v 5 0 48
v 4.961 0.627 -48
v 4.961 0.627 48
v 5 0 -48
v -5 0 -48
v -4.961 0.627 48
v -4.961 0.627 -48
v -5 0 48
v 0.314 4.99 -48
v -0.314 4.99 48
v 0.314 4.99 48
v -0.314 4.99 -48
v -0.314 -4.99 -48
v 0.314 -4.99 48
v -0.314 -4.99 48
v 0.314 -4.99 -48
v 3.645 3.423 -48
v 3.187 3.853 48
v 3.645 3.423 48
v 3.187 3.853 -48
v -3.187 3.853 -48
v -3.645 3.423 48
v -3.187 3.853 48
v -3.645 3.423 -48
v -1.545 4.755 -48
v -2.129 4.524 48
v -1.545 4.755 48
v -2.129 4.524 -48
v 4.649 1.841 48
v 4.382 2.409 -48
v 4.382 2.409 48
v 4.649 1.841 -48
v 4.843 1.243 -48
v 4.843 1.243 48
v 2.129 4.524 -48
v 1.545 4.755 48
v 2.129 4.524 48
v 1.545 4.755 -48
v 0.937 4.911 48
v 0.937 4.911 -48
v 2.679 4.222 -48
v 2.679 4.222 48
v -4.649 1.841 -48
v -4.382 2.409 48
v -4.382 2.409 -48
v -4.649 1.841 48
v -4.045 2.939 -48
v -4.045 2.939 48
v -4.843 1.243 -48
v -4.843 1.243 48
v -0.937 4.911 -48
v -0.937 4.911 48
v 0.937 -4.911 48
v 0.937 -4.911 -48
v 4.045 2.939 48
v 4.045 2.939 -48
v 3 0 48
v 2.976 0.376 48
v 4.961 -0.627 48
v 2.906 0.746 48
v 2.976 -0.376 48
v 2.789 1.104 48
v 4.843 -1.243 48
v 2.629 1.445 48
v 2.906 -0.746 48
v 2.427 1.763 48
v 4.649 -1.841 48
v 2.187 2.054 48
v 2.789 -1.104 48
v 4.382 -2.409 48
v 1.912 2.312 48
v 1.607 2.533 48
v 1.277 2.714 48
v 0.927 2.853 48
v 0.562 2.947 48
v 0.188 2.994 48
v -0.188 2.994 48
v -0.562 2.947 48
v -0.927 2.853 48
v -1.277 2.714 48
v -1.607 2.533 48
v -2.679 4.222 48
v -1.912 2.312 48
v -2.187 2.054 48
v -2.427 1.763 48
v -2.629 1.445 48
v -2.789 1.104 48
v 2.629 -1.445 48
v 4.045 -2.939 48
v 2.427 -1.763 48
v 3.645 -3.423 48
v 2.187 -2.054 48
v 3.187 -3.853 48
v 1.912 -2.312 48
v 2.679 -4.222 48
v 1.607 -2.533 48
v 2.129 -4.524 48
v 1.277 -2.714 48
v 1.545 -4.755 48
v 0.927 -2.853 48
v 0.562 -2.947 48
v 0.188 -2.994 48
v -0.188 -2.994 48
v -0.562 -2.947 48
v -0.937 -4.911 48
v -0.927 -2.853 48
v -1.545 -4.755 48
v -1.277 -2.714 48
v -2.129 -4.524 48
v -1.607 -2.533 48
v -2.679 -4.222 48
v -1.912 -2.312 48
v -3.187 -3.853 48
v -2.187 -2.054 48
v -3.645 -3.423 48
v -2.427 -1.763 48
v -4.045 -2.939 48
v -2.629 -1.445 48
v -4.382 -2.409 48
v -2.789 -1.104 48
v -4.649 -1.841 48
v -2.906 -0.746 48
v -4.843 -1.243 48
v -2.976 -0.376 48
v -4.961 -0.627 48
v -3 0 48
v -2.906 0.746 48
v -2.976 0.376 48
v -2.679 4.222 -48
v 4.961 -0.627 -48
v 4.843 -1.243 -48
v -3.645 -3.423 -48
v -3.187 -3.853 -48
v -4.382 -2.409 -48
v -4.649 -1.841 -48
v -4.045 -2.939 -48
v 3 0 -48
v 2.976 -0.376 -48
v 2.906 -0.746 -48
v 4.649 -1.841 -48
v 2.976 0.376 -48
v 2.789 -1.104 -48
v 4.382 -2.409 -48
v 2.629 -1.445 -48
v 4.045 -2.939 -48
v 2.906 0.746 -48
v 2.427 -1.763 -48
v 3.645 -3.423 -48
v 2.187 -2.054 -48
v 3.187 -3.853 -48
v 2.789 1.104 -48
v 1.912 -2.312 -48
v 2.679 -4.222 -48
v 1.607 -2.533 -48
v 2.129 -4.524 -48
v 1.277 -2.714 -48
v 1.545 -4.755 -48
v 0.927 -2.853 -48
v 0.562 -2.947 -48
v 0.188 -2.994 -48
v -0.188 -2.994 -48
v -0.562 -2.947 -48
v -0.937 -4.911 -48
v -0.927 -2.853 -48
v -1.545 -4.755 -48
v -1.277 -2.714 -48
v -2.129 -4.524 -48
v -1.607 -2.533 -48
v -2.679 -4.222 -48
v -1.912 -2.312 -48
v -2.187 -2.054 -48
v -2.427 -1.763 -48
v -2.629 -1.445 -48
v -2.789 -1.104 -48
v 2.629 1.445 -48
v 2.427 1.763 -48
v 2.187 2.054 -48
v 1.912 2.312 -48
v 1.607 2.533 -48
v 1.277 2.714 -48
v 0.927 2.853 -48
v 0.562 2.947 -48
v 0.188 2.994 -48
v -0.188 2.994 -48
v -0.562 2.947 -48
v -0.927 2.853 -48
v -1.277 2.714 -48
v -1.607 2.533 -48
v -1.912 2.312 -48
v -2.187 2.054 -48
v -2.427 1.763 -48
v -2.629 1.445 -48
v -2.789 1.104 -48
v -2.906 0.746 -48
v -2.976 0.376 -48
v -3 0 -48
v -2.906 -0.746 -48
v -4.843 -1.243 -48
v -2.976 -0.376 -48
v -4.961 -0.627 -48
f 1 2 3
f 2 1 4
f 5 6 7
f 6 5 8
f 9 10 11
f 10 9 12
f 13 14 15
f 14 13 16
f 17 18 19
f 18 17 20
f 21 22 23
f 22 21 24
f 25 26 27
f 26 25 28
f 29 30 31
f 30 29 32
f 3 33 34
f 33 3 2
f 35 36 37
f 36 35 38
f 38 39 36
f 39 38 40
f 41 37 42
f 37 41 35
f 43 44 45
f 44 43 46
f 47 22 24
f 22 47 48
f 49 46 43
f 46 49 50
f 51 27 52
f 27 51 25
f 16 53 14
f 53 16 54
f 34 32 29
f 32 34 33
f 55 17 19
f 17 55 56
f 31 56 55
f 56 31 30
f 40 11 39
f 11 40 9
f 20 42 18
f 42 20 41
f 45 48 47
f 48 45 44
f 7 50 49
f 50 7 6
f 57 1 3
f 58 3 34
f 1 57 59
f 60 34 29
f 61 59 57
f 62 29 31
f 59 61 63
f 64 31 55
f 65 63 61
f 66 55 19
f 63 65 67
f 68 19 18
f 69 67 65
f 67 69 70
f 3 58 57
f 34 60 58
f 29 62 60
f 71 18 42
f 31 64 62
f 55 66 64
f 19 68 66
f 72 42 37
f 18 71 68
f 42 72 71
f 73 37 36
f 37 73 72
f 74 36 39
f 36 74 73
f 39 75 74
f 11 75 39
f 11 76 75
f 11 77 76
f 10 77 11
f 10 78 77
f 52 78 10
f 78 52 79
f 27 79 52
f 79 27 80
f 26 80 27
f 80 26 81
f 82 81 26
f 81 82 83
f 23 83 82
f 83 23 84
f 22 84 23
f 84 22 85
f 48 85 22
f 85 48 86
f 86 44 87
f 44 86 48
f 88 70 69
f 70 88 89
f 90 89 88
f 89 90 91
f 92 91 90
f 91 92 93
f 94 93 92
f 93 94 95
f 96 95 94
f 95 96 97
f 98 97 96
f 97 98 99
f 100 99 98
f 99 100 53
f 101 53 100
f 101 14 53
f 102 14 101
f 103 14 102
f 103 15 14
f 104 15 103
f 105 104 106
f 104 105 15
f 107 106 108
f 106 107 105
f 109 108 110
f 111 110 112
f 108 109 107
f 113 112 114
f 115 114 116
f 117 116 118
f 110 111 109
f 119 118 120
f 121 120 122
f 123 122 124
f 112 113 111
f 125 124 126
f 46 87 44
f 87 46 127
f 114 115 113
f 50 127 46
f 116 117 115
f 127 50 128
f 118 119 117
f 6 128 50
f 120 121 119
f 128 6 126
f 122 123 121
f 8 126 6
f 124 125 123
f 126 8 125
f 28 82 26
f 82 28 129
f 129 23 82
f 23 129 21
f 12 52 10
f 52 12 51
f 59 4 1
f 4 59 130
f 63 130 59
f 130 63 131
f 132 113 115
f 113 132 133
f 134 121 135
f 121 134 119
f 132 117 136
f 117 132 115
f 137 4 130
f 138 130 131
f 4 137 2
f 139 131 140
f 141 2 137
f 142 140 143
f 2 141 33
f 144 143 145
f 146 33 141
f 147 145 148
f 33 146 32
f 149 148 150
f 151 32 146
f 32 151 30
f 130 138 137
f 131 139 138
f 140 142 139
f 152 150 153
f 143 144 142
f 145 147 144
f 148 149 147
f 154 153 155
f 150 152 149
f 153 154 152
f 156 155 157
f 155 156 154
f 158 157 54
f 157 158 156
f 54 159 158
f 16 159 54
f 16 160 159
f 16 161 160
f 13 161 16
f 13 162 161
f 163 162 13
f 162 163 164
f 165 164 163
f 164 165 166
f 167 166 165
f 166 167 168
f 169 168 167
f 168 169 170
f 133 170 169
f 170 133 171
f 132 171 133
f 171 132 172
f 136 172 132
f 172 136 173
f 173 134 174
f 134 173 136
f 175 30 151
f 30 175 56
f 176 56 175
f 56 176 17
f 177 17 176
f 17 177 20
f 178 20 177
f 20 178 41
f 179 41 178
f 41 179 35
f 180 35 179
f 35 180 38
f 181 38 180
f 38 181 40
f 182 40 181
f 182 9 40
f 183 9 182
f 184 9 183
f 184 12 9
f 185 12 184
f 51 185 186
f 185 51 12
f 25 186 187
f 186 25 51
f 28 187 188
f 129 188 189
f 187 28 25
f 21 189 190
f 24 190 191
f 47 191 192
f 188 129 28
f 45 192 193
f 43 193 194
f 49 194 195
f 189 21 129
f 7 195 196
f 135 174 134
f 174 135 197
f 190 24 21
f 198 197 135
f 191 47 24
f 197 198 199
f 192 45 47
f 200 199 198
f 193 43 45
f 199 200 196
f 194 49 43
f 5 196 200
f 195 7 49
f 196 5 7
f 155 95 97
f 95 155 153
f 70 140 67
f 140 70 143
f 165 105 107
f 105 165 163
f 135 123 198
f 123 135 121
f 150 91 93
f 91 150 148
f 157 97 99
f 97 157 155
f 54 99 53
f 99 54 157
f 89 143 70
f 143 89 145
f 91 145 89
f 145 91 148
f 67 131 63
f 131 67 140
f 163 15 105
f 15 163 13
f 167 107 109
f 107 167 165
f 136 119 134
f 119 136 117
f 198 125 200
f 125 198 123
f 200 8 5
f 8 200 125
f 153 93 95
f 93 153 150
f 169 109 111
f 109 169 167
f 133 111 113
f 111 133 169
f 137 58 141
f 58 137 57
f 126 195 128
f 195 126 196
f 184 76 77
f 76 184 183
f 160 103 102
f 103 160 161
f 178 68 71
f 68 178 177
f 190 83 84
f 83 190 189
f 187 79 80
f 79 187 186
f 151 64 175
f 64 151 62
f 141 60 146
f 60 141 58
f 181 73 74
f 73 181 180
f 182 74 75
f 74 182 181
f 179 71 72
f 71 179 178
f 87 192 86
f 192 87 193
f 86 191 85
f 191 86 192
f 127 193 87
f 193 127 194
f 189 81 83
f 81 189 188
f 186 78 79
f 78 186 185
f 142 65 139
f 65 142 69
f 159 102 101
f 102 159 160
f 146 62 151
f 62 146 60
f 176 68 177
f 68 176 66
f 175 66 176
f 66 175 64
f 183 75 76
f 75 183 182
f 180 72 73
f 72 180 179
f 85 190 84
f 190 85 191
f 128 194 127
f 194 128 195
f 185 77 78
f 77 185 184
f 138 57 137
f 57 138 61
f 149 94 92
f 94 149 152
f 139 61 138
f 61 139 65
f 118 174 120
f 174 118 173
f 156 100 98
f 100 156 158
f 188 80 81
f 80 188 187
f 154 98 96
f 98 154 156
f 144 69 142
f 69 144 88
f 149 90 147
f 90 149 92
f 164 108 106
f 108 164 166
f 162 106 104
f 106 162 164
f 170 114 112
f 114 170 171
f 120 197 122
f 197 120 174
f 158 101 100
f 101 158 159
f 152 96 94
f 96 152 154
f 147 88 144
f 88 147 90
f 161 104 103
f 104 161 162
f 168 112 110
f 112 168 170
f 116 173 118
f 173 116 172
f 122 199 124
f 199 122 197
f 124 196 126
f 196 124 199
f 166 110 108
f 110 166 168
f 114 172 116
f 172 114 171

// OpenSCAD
$fn = 50;


difference() {
	union() {
		translate(v = [0, 0, -48.0000000000]) {
			cylinder(h = 96, r = 5.0000000000);
		}
	}
	union() {
		translate(v = [0, 0, -100.0000000000]) {
			cylinder(h = 200, r = 3);
		}
	}
}
